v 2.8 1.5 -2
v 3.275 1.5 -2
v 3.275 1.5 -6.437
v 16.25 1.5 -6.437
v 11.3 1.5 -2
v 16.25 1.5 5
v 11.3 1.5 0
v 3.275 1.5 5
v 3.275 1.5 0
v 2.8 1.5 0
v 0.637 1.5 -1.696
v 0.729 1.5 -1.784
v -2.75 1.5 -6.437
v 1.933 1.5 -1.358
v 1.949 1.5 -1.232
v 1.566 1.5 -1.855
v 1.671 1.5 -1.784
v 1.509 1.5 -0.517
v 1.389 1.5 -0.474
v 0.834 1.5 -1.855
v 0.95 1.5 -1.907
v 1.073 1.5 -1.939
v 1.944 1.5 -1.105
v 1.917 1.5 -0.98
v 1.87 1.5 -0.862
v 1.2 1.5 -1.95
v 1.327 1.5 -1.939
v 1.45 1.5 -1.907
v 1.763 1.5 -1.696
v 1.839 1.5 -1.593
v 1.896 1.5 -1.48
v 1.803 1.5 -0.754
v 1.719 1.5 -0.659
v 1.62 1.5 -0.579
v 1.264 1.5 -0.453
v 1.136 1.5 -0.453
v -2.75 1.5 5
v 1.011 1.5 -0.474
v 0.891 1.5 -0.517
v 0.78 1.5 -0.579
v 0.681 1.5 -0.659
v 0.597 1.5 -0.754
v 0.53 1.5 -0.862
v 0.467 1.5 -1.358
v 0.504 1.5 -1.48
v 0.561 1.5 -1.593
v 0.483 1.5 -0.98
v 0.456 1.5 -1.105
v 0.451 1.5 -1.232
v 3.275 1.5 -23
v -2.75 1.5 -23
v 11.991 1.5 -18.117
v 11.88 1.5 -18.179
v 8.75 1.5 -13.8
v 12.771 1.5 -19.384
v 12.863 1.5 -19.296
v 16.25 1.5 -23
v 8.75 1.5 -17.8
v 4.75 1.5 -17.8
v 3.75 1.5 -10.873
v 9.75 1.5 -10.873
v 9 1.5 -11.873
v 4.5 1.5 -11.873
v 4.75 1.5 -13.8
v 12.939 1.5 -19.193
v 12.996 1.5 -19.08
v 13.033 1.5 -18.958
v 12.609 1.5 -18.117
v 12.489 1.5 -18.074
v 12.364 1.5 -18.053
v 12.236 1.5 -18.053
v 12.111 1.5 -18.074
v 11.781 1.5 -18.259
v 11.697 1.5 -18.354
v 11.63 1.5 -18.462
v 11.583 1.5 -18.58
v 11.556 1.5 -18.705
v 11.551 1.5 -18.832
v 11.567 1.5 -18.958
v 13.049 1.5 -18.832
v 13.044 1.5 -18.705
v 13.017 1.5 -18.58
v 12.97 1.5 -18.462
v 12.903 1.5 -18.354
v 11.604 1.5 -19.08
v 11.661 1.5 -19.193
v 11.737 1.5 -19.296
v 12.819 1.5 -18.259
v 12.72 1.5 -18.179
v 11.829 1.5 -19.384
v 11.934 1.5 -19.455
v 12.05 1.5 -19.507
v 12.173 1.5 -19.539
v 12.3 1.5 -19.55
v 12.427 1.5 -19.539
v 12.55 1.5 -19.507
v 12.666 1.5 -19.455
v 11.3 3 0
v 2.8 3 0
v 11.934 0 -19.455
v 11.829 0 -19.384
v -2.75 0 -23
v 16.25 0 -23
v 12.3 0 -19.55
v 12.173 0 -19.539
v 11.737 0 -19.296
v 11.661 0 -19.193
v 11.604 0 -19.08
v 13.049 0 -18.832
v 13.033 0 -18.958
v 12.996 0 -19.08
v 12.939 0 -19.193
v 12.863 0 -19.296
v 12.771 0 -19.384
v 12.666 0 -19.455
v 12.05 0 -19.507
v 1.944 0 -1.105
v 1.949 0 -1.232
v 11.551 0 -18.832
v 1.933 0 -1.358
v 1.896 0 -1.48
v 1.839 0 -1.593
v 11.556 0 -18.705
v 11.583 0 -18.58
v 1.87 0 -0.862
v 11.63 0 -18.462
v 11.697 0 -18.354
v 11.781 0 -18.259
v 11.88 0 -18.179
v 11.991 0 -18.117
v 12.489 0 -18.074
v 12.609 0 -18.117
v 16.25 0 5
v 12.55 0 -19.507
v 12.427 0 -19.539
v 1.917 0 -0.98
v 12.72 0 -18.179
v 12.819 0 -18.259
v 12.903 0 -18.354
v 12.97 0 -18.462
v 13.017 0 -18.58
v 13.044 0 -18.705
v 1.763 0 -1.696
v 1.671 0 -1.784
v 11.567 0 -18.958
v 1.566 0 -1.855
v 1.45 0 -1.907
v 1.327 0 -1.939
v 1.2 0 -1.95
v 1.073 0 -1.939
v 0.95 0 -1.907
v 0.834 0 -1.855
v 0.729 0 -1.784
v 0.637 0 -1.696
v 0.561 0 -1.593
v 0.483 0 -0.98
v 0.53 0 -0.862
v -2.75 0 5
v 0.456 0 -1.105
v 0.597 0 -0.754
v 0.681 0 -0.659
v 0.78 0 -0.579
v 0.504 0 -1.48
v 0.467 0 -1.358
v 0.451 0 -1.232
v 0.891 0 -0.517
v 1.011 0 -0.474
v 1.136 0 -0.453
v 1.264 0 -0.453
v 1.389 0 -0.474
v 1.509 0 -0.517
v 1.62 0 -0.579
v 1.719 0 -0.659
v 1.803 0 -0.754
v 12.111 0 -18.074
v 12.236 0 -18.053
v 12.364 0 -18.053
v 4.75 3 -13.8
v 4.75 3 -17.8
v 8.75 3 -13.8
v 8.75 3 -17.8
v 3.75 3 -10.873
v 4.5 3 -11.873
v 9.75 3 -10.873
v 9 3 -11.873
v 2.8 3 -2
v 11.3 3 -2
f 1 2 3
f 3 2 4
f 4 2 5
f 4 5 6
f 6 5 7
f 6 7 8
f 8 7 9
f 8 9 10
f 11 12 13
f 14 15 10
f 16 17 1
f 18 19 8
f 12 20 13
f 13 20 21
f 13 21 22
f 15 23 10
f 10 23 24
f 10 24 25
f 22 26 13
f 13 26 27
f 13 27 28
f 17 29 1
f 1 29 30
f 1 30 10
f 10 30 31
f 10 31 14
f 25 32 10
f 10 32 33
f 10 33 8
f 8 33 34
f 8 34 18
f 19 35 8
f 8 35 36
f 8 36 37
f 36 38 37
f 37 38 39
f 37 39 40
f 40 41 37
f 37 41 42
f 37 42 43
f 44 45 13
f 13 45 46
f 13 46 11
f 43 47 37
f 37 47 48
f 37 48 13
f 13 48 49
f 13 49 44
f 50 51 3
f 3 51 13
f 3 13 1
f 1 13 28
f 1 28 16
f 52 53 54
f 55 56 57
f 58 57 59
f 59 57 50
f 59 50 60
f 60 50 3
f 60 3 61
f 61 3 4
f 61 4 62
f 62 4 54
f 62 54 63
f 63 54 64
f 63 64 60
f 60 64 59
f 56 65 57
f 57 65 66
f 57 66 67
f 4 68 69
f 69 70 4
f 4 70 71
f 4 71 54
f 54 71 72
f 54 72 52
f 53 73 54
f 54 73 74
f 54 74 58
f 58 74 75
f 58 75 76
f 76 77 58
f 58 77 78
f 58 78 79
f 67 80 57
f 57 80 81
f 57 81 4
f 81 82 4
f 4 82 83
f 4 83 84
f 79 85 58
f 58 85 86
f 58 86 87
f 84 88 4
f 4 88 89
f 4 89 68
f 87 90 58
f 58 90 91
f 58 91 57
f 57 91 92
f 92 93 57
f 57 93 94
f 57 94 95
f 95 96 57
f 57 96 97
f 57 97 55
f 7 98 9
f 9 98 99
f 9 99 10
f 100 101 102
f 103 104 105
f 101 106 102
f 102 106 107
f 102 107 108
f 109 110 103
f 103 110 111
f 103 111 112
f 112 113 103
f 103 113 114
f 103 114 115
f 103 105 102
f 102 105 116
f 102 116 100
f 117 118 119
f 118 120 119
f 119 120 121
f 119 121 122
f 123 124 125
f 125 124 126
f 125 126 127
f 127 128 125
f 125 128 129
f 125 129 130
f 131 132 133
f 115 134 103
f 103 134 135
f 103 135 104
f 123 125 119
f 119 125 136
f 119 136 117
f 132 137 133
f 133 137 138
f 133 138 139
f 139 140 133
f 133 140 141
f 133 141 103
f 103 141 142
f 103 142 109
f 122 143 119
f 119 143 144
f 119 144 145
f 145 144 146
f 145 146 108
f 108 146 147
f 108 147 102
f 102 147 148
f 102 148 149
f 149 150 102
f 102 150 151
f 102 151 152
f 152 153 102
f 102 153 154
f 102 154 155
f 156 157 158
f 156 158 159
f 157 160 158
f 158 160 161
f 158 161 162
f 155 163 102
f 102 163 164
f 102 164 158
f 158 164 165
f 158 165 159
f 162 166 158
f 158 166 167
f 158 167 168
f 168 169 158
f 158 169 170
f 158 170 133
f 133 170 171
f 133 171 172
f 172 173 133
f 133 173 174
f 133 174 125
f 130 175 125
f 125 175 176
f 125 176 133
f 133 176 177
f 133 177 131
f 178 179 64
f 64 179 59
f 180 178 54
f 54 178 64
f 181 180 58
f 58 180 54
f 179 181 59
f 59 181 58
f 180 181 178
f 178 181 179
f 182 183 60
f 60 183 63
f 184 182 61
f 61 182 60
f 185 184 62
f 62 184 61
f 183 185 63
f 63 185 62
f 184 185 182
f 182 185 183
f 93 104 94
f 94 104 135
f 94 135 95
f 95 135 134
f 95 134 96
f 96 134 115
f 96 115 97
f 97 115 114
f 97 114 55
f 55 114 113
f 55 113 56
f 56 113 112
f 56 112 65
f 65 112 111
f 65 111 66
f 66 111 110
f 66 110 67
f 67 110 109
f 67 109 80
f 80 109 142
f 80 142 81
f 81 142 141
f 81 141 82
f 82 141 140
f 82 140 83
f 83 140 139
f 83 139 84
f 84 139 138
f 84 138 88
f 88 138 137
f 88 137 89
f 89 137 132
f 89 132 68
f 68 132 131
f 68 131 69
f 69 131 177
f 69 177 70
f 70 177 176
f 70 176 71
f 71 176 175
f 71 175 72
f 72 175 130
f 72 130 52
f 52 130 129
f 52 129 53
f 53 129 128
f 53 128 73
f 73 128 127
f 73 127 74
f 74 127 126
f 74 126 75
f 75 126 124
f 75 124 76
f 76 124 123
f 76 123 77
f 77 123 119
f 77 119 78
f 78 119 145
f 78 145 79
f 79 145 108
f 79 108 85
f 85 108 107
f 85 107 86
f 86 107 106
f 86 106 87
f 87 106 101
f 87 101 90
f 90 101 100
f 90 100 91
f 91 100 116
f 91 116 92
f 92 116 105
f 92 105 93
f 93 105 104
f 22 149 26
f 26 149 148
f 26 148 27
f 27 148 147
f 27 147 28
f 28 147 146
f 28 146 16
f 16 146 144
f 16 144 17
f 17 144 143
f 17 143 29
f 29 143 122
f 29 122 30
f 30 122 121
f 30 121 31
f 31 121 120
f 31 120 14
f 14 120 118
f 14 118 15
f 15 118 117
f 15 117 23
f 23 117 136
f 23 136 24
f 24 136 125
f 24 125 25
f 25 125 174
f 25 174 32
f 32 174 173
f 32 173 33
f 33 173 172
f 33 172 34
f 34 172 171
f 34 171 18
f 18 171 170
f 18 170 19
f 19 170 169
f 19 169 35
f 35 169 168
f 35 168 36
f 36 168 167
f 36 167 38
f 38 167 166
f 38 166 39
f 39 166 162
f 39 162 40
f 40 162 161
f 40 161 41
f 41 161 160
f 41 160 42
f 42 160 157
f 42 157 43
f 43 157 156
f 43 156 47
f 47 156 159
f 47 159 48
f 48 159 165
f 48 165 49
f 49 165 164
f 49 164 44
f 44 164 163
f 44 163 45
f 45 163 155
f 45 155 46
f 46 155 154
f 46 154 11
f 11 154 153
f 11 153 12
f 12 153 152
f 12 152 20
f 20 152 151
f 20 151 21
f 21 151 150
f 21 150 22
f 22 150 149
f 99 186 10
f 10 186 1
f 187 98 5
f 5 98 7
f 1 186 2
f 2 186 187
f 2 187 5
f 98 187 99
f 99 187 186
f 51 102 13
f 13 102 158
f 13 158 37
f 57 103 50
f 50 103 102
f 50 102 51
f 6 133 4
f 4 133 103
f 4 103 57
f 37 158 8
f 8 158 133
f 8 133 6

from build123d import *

# Parameters (mm, degrees)
SKETCH1_W           = 13.5
SKETCH1_H           = 20
BOSS_EXTRUDE1_DEPTH = 1.5
SKETCH2_W           = 4
SKETCH2_H           = 4
BOSS_EXTRUDE2_DEPTH = 1.5
SKETCH3_R           = 0.75
CUT_EXTRUDE1_DEPTH  = 1.5
SKETCH4_W           = 8.5
SKETCH4_H           = 2
BOSS_EXTRUDE3_DEPTH = 1.5
SKETCH5_W           = 19
SKETCH5_H           = 28
SKETCH5_W_2         = 13.5
SKETCH5_H_2         = 20
BOSS_EXTRUDE4_DEPTH = 1.5


with BuildPart() as part:
    # Sketch1 → Boss-Extrude1 (new body)
    with BuildSketch(Plane(origin=(0, 0, 0), x_dir=(1, 0, 0), z_dir=(0, 1, 0))):
        with Locations((6.75, 10)):
            Rectangle(SKETCH1_W, SKETCH1_H)
    extrude(amount=BOSS_EXTRUDE1_DEPTH)

    # Sketch2 → Boss-Extrude2 (add)
    with BuildSketch(Plane(origin=(0, 1.5, 0), x_dir=(1, 0, 0), z_dir=(0, 1, 0))):
        with Locations((6.75, 15.8)):
            Rectangle(SKETCH2_W, SKETCH2_H)
        Polygon((4.5, 11.87318686), (9, 11.87318686), (9.75, 10.87318686), (3.75, 10.87318686), align=None)
    extrude(amount=BOSS_EXTRUDE2_DEPTH)

    # Sketch3 → Cut-Extrude1 (cut)
    with BuildSketch(Plane.XZ):
        with Locations(Location((12.3, -18.8, 0), (0, 0, 270))):
            Circle(SKETCH3_R)
        with Locations(Location((1.2, -1.2, 0), (0, 0, 270))):
            Circle(SKETCH3_R)
    extrude(amount=-CUT_EXTRUDE1_DEPTH, mode=Mode.SUBTRACT)

    # Sketch4 → Boss-Extrude3 (add)
    with BuildSketch(Plane(origin=(0, 1.5, 0), x_dir=(1, 0, 0), z_dir=(0, 1, 0))):
        with Locations((7.05, 1)):
            Rectangle(SKETCH4_W, SKETCH4_H)
    extrude(amount=BOSS_EXTRUDE3_DEPTH)

    # Sketch5 → Boss-Extrude4 (add)
    with BuildSketch(Plane(origin=(0, 1.5, 0), x_dir=(1, 0, 0), z_dir=(0, 1, 0))):
        with Locations((6.75, 9)):
            Rectangle(SKETCH5_W, SKETCH5_H)
        with Locations((6.75, 10)):
            Rectangle(SKETCH5_W_2, SKETCH5_H_2, mode=Mode.SUBTRACT)
    extrude(amount=-BOSS_EXTRUDE4_DEPTH)


solid = part.part
